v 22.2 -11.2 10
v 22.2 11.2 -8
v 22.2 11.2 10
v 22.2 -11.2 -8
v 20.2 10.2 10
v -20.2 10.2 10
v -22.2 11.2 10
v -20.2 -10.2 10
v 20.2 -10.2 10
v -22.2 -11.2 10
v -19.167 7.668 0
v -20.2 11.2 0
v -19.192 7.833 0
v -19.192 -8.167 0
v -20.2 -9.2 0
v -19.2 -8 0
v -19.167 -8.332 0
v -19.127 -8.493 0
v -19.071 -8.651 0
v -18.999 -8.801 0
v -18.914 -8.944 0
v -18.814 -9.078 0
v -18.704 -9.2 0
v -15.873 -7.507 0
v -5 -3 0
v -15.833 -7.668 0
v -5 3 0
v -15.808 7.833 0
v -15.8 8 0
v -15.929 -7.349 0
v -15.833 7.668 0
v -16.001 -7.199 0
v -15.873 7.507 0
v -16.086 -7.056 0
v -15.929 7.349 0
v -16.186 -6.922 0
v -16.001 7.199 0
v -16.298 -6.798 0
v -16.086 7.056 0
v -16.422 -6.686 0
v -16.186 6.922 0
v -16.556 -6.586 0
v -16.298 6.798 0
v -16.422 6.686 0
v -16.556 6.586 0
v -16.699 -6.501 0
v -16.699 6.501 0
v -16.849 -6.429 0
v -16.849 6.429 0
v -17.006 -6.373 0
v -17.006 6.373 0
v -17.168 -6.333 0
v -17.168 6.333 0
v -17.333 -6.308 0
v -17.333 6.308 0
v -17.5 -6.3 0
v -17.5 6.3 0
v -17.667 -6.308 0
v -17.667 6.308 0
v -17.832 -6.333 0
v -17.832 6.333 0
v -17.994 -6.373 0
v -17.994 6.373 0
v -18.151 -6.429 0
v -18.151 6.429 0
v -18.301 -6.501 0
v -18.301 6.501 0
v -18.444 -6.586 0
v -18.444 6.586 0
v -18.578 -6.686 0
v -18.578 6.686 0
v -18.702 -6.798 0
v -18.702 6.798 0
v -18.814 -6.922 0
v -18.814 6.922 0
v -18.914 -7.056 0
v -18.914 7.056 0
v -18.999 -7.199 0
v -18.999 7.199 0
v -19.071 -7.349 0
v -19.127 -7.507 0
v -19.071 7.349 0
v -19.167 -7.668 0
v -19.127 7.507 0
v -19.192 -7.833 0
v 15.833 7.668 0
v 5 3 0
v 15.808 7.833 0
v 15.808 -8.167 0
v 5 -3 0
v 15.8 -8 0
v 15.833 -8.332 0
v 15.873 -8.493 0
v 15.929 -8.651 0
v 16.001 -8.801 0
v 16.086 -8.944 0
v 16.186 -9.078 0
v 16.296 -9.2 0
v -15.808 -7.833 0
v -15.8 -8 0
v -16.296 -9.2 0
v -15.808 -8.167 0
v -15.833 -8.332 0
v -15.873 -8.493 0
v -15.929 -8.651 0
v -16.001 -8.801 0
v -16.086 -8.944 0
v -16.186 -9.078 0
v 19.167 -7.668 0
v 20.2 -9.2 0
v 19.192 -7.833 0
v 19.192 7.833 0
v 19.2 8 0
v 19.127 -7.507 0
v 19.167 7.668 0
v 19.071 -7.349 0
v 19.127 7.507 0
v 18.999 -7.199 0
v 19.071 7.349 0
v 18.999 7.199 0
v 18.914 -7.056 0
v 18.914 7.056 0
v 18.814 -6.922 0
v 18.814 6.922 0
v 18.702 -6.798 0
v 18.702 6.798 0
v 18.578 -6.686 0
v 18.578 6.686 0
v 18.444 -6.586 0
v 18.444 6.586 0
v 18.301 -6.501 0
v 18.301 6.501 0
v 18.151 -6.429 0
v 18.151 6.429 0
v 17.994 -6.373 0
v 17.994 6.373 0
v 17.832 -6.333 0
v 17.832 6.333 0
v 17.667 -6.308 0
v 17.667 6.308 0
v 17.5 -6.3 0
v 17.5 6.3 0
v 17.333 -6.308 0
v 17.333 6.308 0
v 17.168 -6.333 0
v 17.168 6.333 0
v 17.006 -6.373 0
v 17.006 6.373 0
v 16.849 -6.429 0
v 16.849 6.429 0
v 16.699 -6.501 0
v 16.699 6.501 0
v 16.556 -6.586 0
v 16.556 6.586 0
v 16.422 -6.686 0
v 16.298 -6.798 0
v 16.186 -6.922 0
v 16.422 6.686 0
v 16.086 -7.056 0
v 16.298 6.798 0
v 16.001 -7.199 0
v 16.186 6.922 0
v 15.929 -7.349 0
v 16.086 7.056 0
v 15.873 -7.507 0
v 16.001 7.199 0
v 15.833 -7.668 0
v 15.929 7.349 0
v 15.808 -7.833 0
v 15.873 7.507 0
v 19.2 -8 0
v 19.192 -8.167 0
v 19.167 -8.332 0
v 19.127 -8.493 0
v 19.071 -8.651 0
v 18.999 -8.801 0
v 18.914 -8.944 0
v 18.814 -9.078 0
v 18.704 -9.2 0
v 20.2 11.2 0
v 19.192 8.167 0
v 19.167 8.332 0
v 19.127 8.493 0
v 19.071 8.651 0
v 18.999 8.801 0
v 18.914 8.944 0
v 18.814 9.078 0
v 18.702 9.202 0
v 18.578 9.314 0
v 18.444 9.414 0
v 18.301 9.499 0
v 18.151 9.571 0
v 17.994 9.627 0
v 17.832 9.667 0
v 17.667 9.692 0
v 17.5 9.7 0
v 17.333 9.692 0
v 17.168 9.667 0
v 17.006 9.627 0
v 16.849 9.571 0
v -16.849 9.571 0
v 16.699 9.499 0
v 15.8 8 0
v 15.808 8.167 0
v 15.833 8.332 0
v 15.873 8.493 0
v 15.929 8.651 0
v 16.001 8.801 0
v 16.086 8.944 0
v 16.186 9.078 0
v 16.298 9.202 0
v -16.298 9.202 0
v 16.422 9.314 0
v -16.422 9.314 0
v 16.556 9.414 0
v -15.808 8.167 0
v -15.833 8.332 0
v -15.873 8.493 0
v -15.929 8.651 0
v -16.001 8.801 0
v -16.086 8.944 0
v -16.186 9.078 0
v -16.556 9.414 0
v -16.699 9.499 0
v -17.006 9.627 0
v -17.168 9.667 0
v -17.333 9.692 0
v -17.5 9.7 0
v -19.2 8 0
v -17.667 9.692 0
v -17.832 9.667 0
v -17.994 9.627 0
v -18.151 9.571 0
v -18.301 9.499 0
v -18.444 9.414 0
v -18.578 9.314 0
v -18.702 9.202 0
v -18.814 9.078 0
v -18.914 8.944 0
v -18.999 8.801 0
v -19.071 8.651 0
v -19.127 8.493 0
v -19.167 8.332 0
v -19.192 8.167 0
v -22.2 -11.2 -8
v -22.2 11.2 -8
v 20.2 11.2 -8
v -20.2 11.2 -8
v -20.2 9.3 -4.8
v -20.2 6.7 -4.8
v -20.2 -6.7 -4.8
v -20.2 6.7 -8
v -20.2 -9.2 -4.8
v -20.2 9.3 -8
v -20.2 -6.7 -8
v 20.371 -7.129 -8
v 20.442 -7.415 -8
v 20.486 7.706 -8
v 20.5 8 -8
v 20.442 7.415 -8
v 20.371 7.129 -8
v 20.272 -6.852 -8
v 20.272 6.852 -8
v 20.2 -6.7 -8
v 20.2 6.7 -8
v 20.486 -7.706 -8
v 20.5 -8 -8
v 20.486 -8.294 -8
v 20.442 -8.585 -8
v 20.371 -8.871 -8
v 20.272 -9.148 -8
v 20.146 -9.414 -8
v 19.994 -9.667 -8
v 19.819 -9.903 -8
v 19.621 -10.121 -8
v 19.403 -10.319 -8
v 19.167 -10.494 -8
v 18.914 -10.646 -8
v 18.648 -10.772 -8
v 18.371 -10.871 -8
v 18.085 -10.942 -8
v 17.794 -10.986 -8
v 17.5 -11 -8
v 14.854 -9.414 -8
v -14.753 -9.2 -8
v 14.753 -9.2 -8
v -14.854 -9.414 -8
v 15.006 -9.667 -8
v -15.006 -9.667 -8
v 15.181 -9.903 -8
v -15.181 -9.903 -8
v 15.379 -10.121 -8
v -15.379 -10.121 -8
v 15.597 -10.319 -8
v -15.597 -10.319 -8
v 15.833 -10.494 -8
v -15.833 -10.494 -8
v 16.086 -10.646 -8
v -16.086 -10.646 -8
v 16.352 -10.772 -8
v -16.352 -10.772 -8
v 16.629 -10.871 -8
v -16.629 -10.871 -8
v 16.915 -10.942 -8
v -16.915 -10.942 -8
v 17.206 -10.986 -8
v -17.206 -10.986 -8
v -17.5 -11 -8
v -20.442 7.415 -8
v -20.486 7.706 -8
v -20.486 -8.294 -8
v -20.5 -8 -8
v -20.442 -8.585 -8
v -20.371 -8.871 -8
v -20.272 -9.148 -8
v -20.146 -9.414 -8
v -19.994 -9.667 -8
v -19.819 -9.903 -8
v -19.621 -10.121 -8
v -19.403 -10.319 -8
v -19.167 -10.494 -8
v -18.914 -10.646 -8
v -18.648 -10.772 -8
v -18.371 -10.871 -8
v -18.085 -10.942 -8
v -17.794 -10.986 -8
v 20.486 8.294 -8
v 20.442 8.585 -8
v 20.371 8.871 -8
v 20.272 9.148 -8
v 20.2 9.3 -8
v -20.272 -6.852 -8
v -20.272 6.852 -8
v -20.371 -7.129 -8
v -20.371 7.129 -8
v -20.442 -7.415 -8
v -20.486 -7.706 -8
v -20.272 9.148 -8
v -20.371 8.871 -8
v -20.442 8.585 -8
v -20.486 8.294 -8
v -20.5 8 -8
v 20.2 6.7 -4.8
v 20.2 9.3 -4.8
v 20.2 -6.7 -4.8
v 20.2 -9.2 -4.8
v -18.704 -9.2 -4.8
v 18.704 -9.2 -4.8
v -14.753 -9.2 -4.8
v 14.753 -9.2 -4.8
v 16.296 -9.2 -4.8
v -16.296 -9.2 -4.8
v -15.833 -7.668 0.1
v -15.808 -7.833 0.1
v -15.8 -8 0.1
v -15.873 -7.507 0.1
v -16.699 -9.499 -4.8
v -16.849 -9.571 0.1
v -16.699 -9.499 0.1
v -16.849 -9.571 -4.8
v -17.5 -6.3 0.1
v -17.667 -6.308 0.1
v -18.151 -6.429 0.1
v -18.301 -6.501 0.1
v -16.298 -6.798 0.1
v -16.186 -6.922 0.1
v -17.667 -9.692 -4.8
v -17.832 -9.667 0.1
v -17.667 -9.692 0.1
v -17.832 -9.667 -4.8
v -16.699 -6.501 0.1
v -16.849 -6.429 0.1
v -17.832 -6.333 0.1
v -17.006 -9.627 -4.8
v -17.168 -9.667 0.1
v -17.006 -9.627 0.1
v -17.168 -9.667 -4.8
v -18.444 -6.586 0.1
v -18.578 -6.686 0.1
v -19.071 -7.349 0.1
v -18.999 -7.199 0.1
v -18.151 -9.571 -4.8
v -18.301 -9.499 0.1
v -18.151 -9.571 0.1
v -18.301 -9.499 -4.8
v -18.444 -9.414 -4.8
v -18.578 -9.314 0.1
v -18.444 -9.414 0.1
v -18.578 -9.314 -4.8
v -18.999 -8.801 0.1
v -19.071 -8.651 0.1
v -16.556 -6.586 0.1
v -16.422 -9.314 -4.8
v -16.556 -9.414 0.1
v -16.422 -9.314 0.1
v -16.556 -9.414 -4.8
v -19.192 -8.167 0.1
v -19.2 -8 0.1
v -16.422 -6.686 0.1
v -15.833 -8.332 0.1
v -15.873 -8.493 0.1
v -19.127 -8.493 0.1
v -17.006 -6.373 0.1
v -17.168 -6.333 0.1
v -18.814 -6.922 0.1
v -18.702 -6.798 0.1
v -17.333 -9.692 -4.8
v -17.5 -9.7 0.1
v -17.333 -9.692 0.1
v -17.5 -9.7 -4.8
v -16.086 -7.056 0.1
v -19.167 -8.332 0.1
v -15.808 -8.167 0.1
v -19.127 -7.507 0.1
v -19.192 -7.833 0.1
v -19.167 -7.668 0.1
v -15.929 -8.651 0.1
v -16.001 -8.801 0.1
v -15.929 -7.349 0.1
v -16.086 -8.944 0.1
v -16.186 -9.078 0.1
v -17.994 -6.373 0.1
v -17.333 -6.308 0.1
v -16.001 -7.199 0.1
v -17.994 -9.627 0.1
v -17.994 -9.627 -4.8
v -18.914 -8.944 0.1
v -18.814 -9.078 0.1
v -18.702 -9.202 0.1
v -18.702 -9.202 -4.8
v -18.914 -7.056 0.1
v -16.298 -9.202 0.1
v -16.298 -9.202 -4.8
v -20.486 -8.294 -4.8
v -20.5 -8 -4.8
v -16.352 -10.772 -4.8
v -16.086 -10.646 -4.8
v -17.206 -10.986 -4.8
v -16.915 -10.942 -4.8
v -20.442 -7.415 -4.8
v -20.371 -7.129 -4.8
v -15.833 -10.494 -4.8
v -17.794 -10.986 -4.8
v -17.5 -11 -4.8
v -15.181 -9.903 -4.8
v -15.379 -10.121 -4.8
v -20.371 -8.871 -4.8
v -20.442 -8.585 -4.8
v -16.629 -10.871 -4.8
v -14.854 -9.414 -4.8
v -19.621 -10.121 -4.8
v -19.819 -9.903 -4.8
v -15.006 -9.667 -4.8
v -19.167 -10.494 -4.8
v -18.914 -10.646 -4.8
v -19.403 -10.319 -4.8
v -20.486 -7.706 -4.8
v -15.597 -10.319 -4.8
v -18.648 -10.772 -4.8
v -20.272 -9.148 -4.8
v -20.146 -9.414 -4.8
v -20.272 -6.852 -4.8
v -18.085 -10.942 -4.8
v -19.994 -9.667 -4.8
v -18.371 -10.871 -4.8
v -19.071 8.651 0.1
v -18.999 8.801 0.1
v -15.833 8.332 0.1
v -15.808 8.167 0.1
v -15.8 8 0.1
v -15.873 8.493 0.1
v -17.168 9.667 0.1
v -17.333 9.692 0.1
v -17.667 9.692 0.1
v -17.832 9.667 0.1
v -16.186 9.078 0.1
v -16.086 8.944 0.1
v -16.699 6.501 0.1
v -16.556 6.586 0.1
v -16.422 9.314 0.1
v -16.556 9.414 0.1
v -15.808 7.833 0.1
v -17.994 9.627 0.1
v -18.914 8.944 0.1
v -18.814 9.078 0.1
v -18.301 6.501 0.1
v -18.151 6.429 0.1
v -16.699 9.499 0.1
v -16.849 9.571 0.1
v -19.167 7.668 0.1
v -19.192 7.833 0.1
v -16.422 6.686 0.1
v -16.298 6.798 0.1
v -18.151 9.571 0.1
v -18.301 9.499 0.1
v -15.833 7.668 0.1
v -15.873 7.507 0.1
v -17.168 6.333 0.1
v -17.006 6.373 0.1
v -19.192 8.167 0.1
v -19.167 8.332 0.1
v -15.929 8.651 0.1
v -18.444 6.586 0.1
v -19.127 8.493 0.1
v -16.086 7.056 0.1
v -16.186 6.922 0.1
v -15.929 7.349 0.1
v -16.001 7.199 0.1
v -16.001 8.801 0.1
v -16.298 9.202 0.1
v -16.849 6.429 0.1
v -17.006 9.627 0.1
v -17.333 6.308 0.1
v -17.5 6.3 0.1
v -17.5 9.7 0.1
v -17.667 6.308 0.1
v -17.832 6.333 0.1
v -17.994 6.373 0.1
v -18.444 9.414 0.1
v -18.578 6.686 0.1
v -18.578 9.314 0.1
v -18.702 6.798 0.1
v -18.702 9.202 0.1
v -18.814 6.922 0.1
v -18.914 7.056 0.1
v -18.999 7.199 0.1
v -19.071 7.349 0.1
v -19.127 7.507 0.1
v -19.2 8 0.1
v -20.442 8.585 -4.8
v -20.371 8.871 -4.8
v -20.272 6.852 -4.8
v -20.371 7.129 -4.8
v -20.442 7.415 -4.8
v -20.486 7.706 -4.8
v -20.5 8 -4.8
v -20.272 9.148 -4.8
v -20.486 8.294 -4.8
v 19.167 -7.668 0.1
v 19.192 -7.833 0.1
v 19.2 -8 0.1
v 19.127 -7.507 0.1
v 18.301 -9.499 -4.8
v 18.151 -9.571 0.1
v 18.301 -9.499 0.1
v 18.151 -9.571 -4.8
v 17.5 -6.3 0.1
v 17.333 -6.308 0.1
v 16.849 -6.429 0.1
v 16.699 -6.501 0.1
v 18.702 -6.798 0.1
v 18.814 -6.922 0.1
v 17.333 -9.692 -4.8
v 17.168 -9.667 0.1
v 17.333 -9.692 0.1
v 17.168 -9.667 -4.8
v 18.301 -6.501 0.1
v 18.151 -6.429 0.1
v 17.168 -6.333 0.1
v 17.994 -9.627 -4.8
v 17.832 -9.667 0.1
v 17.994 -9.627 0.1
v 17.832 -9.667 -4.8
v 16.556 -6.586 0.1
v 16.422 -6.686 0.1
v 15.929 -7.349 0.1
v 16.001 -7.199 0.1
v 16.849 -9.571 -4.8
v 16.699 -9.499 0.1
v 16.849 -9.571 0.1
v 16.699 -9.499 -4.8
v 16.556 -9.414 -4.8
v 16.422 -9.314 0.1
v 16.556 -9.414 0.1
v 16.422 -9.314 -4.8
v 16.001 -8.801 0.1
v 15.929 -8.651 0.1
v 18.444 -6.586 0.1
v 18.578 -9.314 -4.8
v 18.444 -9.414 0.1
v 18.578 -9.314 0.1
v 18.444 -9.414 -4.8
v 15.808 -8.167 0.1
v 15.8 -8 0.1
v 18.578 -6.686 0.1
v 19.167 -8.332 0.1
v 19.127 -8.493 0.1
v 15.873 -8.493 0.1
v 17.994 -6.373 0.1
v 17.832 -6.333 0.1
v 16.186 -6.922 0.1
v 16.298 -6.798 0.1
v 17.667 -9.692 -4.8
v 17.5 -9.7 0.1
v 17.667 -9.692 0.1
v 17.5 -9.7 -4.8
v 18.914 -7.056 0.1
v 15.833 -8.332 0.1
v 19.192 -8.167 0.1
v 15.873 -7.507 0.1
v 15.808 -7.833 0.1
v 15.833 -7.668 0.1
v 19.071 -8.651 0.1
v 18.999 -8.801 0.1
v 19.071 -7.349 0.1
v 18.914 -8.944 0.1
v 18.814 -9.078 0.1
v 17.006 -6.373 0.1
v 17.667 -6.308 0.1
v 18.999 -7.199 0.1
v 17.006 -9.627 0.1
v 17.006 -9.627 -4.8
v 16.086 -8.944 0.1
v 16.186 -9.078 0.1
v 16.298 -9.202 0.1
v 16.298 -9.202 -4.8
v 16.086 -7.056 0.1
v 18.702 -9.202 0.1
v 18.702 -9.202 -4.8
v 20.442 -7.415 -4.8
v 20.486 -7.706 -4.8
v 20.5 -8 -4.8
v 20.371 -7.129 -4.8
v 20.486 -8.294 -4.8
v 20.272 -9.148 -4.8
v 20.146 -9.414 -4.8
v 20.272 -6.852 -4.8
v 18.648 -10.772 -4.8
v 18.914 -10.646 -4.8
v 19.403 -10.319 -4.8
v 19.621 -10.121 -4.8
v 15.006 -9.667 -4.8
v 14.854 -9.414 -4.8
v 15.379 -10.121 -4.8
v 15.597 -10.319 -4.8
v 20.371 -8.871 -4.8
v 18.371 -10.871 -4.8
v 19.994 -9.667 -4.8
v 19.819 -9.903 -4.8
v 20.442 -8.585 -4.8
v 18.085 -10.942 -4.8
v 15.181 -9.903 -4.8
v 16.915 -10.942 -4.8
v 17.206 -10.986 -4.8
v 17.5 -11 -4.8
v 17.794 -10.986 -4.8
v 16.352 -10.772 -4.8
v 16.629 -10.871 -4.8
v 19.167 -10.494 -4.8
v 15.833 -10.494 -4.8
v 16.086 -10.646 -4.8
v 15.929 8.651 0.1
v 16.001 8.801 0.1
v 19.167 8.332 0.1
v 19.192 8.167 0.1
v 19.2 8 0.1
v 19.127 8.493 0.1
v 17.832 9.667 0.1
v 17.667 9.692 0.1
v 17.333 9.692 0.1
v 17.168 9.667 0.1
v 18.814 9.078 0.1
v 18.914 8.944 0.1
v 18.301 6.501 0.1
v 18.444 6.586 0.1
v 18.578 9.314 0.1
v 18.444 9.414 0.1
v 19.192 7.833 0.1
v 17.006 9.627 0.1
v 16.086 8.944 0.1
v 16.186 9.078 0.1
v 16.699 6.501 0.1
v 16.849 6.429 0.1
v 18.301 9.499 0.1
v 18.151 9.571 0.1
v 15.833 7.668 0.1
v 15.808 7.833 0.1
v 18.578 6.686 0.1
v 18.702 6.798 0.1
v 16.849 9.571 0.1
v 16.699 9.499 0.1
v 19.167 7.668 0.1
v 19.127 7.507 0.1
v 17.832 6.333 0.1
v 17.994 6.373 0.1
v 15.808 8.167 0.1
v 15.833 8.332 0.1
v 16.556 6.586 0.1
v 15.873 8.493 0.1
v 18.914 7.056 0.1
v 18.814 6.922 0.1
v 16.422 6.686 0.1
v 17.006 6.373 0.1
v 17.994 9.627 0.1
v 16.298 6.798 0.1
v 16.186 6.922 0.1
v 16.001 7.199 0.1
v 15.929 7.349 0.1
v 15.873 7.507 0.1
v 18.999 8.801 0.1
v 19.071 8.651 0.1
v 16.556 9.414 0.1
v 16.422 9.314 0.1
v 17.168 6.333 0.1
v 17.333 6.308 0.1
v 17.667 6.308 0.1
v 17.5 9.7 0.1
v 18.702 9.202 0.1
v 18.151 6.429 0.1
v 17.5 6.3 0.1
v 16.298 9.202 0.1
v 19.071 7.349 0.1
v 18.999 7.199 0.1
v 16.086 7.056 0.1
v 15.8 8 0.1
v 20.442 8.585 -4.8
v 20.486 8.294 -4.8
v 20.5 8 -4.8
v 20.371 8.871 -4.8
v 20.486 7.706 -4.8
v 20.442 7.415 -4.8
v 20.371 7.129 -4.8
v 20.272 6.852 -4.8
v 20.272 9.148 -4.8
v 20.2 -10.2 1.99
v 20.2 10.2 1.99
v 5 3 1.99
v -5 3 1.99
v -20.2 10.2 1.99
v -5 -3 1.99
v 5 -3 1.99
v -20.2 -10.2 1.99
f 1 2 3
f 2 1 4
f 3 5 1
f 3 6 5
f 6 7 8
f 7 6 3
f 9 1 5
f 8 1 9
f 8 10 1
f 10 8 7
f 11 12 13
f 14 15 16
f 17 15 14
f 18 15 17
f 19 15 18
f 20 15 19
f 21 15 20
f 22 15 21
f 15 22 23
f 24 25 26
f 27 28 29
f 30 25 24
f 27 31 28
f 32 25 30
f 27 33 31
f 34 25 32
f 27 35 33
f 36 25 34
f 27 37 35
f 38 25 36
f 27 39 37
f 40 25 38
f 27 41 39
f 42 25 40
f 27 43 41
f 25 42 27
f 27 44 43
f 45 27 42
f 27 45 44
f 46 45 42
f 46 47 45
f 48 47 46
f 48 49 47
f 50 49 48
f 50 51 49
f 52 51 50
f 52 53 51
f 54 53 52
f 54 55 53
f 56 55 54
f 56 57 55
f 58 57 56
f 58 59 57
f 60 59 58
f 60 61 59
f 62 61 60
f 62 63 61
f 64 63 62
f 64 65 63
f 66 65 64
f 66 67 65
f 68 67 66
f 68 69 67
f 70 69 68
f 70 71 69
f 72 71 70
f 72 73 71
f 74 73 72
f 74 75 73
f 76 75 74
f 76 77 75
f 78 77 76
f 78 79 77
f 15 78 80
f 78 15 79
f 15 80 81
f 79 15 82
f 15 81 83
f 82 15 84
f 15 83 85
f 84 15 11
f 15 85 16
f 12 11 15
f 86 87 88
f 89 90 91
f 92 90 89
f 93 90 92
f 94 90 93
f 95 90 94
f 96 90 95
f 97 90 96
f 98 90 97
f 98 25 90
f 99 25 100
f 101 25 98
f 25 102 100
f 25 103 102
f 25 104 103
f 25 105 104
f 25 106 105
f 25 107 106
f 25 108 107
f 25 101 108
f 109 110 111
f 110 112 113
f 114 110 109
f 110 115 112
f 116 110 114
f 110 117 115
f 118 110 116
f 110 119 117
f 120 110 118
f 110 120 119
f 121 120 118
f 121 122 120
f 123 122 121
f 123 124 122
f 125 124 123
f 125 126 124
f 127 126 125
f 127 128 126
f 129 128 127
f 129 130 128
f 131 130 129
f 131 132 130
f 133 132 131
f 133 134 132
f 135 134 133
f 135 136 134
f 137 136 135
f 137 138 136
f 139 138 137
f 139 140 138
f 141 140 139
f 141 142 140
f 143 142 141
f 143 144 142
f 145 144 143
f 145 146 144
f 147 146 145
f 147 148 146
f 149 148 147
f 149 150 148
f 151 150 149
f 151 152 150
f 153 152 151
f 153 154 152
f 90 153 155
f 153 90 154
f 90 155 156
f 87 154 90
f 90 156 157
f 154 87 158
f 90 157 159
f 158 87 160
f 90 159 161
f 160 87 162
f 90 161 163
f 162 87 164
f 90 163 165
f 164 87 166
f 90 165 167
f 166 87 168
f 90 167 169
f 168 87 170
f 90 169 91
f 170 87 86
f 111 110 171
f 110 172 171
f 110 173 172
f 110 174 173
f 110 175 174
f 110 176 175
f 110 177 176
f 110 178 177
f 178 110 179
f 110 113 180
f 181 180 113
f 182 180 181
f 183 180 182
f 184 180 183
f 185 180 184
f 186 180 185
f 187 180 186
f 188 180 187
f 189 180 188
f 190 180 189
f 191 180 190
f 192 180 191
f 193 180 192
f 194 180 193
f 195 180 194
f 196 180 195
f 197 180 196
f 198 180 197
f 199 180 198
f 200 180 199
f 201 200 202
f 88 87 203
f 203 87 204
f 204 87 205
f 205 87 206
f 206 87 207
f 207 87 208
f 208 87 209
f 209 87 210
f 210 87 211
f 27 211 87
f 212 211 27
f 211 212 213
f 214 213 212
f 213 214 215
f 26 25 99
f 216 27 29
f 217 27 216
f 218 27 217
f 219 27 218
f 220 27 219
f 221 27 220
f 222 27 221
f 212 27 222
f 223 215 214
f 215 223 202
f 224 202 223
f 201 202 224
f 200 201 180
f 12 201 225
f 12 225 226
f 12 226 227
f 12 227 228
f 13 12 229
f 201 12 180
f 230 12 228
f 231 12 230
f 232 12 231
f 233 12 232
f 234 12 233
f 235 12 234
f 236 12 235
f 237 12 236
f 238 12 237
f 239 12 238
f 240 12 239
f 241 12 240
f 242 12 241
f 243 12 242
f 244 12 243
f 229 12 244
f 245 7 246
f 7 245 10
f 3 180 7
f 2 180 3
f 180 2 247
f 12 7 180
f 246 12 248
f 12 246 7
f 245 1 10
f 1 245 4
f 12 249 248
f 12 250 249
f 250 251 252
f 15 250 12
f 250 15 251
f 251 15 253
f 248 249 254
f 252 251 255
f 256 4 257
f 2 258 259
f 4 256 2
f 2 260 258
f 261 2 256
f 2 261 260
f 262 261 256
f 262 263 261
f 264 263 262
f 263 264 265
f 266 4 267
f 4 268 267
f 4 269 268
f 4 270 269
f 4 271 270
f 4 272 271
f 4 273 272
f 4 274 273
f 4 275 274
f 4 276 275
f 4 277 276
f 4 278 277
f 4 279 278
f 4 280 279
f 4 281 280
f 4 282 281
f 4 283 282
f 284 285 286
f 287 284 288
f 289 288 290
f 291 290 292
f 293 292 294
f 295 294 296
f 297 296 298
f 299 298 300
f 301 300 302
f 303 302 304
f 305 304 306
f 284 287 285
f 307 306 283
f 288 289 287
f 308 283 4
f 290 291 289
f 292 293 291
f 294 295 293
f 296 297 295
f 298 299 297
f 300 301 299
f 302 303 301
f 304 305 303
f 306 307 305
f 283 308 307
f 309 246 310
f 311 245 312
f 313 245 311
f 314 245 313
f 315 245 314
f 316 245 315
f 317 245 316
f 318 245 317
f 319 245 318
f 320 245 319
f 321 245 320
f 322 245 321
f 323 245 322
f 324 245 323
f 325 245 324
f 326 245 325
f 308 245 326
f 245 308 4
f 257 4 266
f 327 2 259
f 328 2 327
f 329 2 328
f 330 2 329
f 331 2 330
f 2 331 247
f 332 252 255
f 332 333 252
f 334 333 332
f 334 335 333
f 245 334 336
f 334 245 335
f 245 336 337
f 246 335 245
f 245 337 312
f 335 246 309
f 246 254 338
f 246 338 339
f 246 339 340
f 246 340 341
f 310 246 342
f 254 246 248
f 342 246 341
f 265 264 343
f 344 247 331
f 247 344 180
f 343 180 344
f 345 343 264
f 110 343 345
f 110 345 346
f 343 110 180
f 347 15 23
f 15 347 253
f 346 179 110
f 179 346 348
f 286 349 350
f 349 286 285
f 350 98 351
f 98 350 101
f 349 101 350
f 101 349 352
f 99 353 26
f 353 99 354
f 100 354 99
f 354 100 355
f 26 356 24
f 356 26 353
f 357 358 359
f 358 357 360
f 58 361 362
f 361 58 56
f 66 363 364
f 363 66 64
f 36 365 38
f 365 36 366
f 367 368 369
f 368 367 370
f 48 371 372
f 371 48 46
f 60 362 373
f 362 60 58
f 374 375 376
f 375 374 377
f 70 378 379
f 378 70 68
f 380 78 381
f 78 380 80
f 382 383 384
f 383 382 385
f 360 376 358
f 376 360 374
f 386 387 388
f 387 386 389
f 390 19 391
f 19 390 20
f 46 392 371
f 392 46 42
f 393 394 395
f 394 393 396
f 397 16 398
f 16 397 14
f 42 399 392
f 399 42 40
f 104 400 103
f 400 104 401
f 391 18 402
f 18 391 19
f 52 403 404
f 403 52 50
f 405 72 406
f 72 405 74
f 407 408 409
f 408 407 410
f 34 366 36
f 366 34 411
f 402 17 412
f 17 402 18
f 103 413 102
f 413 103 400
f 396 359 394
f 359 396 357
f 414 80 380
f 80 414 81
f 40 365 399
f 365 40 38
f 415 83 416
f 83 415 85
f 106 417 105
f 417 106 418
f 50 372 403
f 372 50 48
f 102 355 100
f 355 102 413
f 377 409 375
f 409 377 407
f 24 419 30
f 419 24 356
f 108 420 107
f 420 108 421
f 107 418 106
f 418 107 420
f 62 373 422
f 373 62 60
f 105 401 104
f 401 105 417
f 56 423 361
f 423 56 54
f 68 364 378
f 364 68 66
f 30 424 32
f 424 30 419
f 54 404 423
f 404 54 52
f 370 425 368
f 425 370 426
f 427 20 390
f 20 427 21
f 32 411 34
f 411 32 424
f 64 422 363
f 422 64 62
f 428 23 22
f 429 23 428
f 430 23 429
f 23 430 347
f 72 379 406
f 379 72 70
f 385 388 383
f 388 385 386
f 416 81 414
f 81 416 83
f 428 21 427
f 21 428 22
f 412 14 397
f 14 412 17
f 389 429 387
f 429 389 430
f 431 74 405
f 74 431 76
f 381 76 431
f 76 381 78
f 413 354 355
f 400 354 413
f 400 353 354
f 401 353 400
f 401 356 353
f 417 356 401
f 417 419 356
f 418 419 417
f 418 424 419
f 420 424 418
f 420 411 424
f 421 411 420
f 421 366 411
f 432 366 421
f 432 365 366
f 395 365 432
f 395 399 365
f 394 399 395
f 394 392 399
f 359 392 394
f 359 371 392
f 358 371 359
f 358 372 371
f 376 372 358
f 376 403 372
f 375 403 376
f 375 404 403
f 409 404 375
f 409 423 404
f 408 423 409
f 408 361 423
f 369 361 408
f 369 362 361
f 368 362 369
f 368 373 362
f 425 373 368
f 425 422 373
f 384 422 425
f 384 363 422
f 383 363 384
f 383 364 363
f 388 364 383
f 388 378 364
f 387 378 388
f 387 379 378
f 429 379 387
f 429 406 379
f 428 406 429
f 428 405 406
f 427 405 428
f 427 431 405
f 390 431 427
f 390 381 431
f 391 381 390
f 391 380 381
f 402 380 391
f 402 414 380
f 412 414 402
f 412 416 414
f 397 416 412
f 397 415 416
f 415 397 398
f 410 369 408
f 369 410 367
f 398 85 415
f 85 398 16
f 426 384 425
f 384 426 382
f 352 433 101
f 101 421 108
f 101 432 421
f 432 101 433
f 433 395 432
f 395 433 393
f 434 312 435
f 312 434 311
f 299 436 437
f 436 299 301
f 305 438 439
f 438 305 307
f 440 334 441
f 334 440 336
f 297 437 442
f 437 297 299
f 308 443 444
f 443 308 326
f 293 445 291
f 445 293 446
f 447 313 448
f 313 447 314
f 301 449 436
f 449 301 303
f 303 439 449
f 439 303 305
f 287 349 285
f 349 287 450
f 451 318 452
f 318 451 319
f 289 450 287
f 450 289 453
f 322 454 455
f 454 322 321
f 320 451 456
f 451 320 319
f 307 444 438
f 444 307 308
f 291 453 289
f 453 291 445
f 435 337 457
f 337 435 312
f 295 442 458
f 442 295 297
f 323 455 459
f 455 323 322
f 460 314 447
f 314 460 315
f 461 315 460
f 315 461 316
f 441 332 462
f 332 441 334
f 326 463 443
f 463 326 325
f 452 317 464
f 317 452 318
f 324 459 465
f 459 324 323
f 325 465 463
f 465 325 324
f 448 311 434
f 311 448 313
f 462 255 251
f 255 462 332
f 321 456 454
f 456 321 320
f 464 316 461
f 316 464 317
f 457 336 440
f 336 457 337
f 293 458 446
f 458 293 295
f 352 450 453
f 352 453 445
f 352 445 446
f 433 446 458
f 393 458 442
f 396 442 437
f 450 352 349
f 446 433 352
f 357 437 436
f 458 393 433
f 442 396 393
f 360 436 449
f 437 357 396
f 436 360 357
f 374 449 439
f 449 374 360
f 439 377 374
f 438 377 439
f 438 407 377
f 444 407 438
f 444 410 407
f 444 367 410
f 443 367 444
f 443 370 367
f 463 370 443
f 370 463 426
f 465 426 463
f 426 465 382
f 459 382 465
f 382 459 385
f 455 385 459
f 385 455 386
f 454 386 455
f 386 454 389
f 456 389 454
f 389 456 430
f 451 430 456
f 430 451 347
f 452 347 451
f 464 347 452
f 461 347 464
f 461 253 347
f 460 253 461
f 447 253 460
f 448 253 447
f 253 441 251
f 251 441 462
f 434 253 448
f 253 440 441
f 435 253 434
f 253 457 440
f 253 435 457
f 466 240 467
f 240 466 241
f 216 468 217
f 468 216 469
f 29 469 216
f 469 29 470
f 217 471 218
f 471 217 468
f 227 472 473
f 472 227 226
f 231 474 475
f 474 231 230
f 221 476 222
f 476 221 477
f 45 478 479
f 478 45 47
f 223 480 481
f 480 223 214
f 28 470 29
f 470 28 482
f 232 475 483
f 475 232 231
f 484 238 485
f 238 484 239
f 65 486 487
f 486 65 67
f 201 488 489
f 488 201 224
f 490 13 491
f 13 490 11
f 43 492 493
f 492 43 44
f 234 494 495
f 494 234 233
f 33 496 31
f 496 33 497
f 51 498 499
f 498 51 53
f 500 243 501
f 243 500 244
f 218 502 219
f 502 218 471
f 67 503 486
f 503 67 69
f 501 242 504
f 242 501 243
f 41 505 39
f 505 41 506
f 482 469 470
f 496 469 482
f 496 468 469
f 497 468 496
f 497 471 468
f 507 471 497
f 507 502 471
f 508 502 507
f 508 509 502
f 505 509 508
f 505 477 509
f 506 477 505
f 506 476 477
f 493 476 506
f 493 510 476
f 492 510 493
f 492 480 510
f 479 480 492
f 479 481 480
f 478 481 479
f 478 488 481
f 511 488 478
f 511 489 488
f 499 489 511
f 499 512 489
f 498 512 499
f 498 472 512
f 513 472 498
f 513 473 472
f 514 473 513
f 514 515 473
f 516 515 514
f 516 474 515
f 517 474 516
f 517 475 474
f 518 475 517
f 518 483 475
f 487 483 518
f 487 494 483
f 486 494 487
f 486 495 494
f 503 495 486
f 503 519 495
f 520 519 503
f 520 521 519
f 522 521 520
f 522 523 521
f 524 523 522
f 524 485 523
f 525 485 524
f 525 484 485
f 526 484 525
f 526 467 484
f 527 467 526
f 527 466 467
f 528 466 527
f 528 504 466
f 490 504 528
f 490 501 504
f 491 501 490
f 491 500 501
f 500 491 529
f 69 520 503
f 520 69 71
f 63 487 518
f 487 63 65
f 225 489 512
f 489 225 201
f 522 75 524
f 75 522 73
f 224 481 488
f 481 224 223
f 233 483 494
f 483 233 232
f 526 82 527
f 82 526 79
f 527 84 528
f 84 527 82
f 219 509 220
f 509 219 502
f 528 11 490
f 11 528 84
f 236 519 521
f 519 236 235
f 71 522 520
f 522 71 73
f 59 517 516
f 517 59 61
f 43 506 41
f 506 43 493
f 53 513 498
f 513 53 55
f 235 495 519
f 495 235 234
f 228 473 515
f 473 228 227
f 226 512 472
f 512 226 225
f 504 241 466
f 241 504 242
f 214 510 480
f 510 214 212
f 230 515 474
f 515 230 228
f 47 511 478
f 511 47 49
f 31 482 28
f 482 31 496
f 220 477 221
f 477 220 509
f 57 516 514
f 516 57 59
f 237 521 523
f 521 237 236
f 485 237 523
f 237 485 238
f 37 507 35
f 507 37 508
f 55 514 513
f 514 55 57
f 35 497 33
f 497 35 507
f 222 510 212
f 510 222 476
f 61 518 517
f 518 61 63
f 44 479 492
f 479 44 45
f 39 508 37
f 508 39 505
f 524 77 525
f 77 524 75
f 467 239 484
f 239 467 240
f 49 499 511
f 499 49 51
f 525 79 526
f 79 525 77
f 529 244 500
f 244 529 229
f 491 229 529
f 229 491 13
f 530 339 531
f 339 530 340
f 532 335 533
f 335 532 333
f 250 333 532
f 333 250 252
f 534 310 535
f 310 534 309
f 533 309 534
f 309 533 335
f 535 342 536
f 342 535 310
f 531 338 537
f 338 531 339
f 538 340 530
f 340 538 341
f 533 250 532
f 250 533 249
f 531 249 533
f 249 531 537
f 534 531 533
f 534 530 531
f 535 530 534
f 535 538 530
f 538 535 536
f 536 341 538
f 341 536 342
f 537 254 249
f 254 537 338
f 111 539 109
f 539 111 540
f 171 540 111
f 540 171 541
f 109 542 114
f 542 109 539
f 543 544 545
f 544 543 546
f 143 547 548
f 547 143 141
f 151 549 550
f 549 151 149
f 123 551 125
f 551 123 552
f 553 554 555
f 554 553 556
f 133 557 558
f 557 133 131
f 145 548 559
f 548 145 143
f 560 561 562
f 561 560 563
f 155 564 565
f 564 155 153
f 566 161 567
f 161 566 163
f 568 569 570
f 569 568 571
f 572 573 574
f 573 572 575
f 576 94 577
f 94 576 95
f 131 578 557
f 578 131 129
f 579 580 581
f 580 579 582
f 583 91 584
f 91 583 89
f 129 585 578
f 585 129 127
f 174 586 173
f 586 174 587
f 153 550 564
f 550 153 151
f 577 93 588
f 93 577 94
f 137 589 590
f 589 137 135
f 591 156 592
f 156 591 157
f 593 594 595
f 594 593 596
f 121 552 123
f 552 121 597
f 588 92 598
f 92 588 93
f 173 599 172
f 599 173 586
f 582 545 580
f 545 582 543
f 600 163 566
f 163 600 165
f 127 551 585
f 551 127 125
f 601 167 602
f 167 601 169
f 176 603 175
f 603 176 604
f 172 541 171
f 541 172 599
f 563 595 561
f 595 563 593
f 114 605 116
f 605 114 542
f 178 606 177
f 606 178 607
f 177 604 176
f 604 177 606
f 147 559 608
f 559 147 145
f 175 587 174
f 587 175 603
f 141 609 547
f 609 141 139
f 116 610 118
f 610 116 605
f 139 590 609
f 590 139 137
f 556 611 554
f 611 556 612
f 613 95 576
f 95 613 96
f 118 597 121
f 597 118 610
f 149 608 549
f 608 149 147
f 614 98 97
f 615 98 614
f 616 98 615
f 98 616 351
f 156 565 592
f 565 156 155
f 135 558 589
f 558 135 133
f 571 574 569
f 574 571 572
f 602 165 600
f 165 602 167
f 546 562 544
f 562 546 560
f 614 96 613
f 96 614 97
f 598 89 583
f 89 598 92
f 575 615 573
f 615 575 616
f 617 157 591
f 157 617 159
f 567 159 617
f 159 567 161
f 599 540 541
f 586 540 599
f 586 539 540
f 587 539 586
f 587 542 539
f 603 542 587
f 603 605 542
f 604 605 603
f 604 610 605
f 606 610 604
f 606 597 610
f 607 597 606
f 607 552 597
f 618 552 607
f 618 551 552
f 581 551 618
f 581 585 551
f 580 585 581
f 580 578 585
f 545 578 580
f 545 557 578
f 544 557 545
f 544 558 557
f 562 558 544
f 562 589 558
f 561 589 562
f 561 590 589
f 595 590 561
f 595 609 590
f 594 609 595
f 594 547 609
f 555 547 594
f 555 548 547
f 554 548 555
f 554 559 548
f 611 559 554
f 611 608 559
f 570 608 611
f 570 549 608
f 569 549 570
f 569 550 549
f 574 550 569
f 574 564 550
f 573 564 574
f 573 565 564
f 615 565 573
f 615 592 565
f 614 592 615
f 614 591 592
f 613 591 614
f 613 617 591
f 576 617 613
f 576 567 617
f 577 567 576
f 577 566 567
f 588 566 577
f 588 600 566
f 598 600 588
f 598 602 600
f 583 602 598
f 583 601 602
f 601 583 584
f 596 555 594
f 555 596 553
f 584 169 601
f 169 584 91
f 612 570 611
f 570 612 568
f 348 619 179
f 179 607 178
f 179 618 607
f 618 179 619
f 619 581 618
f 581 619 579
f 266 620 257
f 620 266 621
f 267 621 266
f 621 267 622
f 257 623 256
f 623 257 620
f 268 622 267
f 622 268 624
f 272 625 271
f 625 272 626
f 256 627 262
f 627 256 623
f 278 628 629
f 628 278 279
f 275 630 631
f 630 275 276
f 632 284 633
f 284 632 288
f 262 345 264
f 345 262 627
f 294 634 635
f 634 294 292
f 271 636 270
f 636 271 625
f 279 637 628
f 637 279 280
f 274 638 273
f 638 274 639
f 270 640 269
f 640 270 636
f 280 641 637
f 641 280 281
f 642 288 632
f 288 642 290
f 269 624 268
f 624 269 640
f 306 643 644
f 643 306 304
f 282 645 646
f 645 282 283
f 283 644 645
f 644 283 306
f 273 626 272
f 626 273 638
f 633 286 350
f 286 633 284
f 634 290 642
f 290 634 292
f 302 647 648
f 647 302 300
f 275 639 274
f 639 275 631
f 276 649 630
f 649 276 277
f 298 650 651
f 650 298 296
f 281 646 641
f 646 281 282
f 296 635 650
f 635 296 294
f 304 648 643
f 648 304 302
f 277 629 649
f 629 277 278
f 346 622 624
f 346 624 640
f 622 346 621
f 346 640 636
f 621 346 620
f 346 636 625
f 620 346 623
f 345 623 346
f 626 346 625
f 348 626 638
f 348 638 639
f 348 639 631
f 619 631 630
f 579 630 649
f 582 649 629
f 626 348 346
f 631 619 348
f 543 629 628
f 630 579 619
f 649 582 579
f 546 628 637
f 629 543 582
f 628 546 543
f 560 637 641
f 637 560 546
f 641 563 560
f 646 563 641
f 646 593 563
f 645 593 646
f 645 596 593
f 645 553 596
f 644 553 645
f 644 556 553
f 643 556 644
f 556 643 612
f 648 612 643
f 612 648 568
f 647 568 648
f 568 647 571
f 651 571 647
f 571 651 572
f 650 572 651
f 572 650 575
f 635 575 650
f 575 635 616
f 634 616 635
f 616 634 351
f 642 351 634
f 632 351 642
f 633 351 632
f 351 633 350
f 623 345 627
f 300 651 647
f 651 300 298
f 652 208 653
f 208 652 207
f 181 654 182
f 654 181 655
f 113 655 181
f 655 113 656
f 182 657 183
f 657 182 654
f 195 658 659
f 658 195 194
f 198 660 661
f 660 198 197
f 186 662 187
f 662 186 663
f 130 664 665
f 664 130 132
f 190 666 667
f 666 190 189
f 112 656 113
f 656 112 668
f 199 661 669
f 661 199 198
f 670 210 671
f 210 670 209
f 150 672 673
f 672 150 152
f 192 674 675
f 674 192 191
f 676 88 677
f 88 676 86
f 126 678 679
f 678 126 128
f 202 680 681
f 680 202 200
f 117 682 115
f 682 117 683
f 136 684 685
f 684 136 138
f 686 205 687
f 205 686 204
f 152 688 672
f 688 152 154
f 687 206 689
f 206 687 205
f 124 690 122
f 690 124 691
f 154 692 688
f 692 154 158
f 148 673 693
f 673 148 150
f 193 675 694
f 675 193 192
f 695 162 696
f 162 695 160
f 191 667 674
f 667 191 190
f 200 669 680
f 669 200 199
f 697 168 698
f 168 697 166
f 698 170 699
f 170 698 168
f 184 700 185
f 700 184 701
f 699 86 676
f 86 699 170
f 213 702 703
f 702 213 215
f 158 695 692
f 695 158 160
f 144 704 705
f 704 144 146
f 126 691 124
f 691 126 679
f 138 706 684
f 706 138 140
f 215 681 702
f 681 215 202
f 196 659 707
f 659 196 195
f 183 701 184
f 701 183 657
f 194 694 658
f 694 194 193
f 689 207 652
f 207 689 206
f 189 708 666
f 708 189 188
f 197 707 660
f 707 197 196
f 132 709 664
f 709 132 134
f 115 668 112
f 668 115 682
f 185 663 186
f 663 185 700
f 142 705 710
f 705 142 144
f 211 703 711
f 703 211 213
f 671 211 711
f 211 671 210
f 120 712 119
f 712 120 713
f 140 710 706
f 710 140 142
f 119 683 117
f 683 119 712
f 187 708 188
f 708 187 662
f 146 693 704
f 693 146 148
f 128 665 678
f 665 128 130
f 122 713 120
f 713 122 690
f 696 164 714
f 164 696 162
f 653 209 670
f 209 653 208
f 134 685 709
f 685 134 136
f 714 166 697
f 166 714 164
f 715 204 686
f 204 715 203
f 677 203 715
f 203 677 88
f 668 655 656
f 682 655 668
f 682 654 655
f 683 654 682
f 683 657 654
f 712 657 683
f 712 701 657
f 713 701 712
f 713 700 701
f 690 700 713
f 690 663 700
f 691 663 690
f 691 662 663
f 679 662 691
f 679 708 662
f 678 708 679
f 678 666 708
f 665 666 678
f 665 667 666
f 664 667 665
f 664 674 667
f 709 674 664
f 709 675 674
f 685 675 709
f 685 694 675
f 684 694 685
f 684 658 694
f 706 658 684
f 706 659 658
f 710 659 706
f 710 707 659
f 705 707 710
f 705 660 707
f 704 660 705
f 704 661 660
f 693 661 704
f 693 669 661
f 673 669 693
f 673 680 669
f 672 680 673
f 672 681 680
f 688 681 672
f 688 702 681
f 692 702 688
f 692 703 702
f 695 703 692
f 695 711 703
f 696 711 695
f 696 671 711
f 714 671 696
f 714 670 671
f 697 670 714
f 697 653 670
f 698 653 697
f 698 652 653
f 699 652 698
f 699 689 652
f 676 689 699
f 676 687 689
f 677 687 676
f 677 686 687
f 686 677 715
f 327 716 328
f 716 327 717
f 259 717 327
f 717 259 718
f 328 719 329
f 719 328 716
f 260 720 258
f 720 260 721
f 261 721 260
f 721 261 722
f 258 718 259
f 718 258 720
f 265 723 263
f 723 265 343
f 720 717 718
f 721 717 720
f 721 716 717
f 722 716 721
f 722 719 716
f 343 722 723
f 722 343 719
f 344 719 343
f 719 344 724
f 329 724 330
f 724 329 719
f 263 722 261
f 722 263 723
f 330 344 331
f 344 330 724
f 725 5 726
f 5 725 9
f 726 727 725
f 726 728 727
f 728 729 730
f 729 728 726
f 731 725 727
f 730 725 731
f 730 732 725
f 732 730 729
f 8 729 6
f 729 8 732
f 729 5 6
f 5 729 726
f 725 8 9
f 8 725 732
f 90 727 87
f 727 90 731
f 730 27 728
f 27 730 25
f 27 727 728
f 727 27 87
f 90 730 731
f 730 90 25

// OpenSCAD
// ============================================================
// nacelle_servo_bracket.scad
// U-channel saddle clamp for mounting a DS3218MG-class nacelle tilt servo
// to the nacelle_servo_mount_block pads in cargo_sect_shell24.scad.
//
// Rev R (2026-06-11): Rev R baseline — initial design (Rev S1) carried forward; no geometry changes.
// Rev S1 (2026-06-08): Initial release.
//   Design for field disassembly per CLAUDE.md (common hand-tools only).
//   Fasteners: 4× M3×10 SHCS into heat-set inserts on mount block.
//
// FUNCTION:
//   The bracket clamps around the DS3218MG servo body (40×20×38 mm) and
//   bolts flush to the 52×30×8 mm NSVMT pad on the interior Z-wall of the
//   cargo gondola.  The servo output shaft points outboard (Z direction)
//   toward the nacelle tilt pivot.  Output shaft is concentric with
//   NSVMT_Y_CEN (= CY + 40 mm ≈ -289 mm world Y).
//
// ASSEMBLY SEQUENCE (Phase 3 per PHASED_BUILD_GUIDE.md):
//   1. Heat-set 4× Ruthex RX-M3x5.7 inserts into NSVMT pad (in gondola shell).
//   2. Insert servo into bracket U-channel from the outboard (nacelle) side.
//   3. Offer bracket + servo assembly to NSVMT pad (servo lead through conduit).
//   4. Fasten 4× M3×10 SHCS through bracket flanges into pad inserts.
//   5. Route servo lead through 10×6 mm conduit slot to avionics bay.
//   Note: Bracket can be removed with servo attached for in-field servo swap.
//
// GEOMETRY:
//   U-channel: BKRT_CH_W × BKRT_CH_H × BKRT_CH_D
//     Inner clear: 40.4×20.4 mm (servo 40×20 mm + 0.2 mm/side clearance).
//     Wall:        BKRT_WALL = 2.0 mm CF-PETG (structural per CLAUDE.md).
//   Flanges: BKRT_FLNG_T × BKRT_FLNG_H on each side of channel mouth.
//     4× M3 through-holes at ±17.5 mm (X) × ±8.0 mm (Y) from bracket centre.
//     M3 clearance hole: 3.4 mm dia (ISO 273 medium fit).
//   Lead notch: 10×6 mm slot on channel closed face for servo lead exit.
//
// LOAD / FOS:
//   Servo stall: 2.45 N·m (DS3218MG, 6 V min spec).
//   Couple arm (bolt pair): 2×17.5 = 35 mm → F_pair = 70 N → 35 N/bolt.
//   M3×10 SHCS in CF-PETG direct shear: ≥ 3000 N (8.8 grade, ISO 4762).
//   FOS_shear = 3000 / 35 = 85.7  ✓✓ (>> 4.0 target, AUVSI guidance).
//   Ref: ISO 4762 M3×10 SHCS; DS3218MG datasheet; AUVSI UAS structural margin.
//
// MATERIAL: CF-PETG, 0.15 mm layer height, 4 perimeters, ≥ 40% infill.
//   Print orientation: channel mouth facing up (−Y in print bed coords) to
//   avoid support in bore; flanges flat on build plate.
//
// Author: Steve Griffing, PE(CSE), CISSP-ISSEP, CPP
// License: CC BY 4.0 -- creativecommons.org/licenses/by/4.0
// Ref: DS3218MG datasheet; cargo_sect_shell24.scad NSVMT_* parameters;
//      PHASED_BUILD_GUIDE.md Phase 3; ISO 4762; CLAUDE.md fabrication standards.
// ============================================================

$fn = 64;

// DS3218MG body dimensions (nominal; verified against datasheet Rev 1.0)
SERVO_BODY_X       = 40.0;   // mm, body length (X, longitudinal)
SERVO_BODY_Y       = 20.0;   // mm, body width  (Y, vertical)
SERVO_BODY_Z       = 38.0;   // mm, body depth  (Z, into nacelle — not constrained by bracket)

// Clearance on each inner face of channel (ISO 286 loose fit for CF-PETG shrinkage)
SERVO_CLR          =  0.2;   // mm, clearance per side in X and Y

// Bracket wall thickness
BKRT_WALL          =  2.0;   // mm, CF-PETG structural minimum per CLAUDE.md

// U-channel inner dimensions
BKRT_CH_IW         = SERVO_BODY_X + 2 * SERVO_CLR;   // = 40.4 mm, inner width (X)
BKRT_CH_IH         = SERVO_BODY_Y + 2 * SERVO_CLR;   // = 20.4 mm, inner height (Y)

// U-channel outer dimensions
BKRT_CH_OW         = BKRT_CH_IW + 2 * BKRT_WALL;    // = 44.4 mm, outer width
BKRT_CH_OH         = BKRT_CH_IH + BKRT_WALL;         // = 22.4 mm, outer height (open at −Z face)

// Channel depth in Z (covers servo output-shaft boss side)
//   Servo output shaft on +Z face; bracket depth keeps servo captured until flange bolts engaged.
BKRT_CH_D          = 10.0;   // mm, channel depth in Z (not full servo depth; flange provides axial lock)

// Flange geometry
//   Flanges extend in Z beyond the channel to bolt to the NSVMT pad.
//   BKRT_FLNG_T: flange thickness in Z (bolt head recess + thread engagement).
//   BKRT_FLNG_H: flange height in Y (must span ±NSVMT_HOLE_S_Y = ±8.0 mm → ≥ 16 mm + margins).
BKRT_FLNG_T        =  8.0;   // mm, flange thickness in Z (8 mm pad engagement)
BKRT_FLNG_H        = BKRT_CH_OH;     // = 22.4 mm, same as channel outer height
BKRT_FLNG_W        = BKRT_CH_OW;     // = 44.4 mm, full channel outer width

// M3 through-hole in flange
//   ISO 273 medium fit: 3.4 mm clearance hole.
//   Positions match NSVMT_HOLE_S_X = ±17.5 mm (X) and NSVMT_HOLE_S_Y = ±8.0 mm (Y).
M3_CLR_D           =  3.4;   // mm, M3 ISO medium clearance hole
FLNG_HOLE_S_X      = 17.5;   // mm, ±X offset from bracket X centre
FLNG_HOLE_S_Y      =  8.0;   // mm, ±Y offset from bracket Y centre

// M3 SHCS head recess on outboard flange face (prevents protrusion)
//   DIN 912 M3×10 SHCS socket head: 5.5 mm dia × 3.0 mm tall.
M3_HD_D            =  6.0;   // mm, recess OD (5.5 mm head + 0.25 mm clearance)
M3_HD_DEP          =  3.2;   // mm, recess depth (3.0 mm head + 0.2 mm clearance)

// Lead notch dimensions (servo lead exits through bracket closed face)
LEAD_NOTCH_W       = 10.0;   // mm, notch width in X (matches NSVMT_CONDUIT_W)
LEAD_NOTCH_H       =  6.0;   // mm, notch height in Y (matches NSVMT_CONDUIT_H)

// Bracket origin convention:
//   (0, 0, 0) = centre of channel inner base face (closed −Z wall outboard face).
//   Channel opens toward +Z (toward nacelle / servo shaft).
//   Flanges extend in −Z (toward NSVMT pad, into gondola).

// ----------------------------------------------------------------------------
// Module: bracket_body
//   Full bracket geometry: U-channel + two flanges − bore cuts.
//   Called once in main block.
// ----------------------------------------------------------------------------
module bracket_body() {
    difference() {
        union() {
            // U-channel outer solid (closed at −Z, open toward +Z)
            //   Origin at channel centre (X=0, Y=0, Z=0 = outboard face of channel).
            translate([-BKRT_CH_OW / 2, -BKRT_CH_OH / 2, 0])
            cube([BKRT_CH_OW, BKRT_CH_OH, BKRT_CH_D]);

            // Port flange (−X side of channel, extends −Z toward pad)
            translate([-BKRT_CH_OW / 2 - 0,
                       -BKRT_FLNG_H / 2,
                       -BKRT_FLNG_T])
            cube([BKRT_WALL, BKRT_FLNG_H, BKRT_FLNG_T]);

            // Starboard flange (+X side of channel, extends −Z toward pad)
            translate([BKRT_CH_OW / 2 - BKRT_WALL,
                       -BKRT_FLNG_H / 2,
                       -BKRT_FLNG_T])
            cube([BKRT_WALL, BKRT_FLNG_H, BKRT_FLNG_T]);

            // Flange bridge: thin backing plate connecting both flanges at −Z face.
            //   Distributes bolt preload; prevents flange rotation under torque.
            translate([-BKRT_FLNG_W / 2,
                       -BKRT_FLNG_H / 2,
                       -BKRT_FLNG_T])
            cube([BKRT_FLNG_W, BKRT_WALL, BKRT_FLNG_T]);
        }

        // ── U-channel inner bore (servo body cavity) ──────────────────────────
        //   Inner clear: 40.4 × 20.4 mm, depth BKRT_CH_D + 1 mm overshoot.
        translate([-BKRT_CH_IW / 2,
                   -BKRT_CH_IH / 2,
                   BKRT_WALL - 0.01])
        cube([BKRT_CH_IW, BKRT_CH_IH, BKRT_CH_D - BKRT_WALL + 1.01]);

        // ── Lead wire notch on closed (outboard) channel face ─────────────────
        //   10×6 mm slot at centre of closed face for servo lead exit.
        //   Aligns with NSVMT_CONDUIT_W × NSVMT_CONDUIT_H in NSVMT pad.
        translate([-LEAD_NOTCH_W / 2, -LEAD_NOTCH_H / 2, -0.1])
        cube([LEAD_NOTCH_W, LEAD_NOTCH_H, BKRT_WALL + 0.2]);

        // ── M3 through-holes and head recesses in flanges ─────────────────────
        //   4 holes: ±FLNG_HOLE_S_X (X) × ±FLNG_HOLE_S_Y (Y).
        //   Clearance hole: M3_CLR_D = 3.4 mm through flange thickness.
        //   Head recess: M3_HD_D = 6.0 mm × M3_HD_DEP = 3.2 mm on outboard face.
        for (sx = [-FLNG_HOLE_S_X, FLNG_HOLE_S_X])
        for (sy = [-FLNG_HOLE_S_Y, FLNG_HOLE_S_Y]) {
            // Through-hole (Z axis, from outboard face through flange)
            translate([sx, sy, -BKRT_FLNG_T - 0.1])
            cylinder(h = BKRT_FLNG_T + 0.2, d = M3_CLR_D);

            // DIN 912 socket head recess on outboard flange face
            translate([sx, sy, -BKRT_FLNG_T - 0.1])
            cylinder(h = M3_HD_DEP + 0.1, d = M3_HD_D);
        }
    }
}

// ============================================================
// Main geometry
// ============================================================
//
// Print orientation note:
//   Render with channel mouth facing +Z (up); set slicer to print with
//   the outboard flat face (Z=0 plane) on the build plate.
//   No supports needed: channel walls bridge the inner bore overhang.
//
// Assembly fit check:
//   Verify channel inner 40.4×20.4 mm clears DS3218MG body 40×20 mm.
//   Verify M3 hole pattern ±17.5 mm × ±8.0 mm matches NSVMT insert pattern.
//   Verify BKRT_FLNG_T = 8 mm matches NSVMT_PAD_T = 8 mm for flush seating.
//   VERIFY all dimensions in slicer measurement tool before printing.

bracket_body();
